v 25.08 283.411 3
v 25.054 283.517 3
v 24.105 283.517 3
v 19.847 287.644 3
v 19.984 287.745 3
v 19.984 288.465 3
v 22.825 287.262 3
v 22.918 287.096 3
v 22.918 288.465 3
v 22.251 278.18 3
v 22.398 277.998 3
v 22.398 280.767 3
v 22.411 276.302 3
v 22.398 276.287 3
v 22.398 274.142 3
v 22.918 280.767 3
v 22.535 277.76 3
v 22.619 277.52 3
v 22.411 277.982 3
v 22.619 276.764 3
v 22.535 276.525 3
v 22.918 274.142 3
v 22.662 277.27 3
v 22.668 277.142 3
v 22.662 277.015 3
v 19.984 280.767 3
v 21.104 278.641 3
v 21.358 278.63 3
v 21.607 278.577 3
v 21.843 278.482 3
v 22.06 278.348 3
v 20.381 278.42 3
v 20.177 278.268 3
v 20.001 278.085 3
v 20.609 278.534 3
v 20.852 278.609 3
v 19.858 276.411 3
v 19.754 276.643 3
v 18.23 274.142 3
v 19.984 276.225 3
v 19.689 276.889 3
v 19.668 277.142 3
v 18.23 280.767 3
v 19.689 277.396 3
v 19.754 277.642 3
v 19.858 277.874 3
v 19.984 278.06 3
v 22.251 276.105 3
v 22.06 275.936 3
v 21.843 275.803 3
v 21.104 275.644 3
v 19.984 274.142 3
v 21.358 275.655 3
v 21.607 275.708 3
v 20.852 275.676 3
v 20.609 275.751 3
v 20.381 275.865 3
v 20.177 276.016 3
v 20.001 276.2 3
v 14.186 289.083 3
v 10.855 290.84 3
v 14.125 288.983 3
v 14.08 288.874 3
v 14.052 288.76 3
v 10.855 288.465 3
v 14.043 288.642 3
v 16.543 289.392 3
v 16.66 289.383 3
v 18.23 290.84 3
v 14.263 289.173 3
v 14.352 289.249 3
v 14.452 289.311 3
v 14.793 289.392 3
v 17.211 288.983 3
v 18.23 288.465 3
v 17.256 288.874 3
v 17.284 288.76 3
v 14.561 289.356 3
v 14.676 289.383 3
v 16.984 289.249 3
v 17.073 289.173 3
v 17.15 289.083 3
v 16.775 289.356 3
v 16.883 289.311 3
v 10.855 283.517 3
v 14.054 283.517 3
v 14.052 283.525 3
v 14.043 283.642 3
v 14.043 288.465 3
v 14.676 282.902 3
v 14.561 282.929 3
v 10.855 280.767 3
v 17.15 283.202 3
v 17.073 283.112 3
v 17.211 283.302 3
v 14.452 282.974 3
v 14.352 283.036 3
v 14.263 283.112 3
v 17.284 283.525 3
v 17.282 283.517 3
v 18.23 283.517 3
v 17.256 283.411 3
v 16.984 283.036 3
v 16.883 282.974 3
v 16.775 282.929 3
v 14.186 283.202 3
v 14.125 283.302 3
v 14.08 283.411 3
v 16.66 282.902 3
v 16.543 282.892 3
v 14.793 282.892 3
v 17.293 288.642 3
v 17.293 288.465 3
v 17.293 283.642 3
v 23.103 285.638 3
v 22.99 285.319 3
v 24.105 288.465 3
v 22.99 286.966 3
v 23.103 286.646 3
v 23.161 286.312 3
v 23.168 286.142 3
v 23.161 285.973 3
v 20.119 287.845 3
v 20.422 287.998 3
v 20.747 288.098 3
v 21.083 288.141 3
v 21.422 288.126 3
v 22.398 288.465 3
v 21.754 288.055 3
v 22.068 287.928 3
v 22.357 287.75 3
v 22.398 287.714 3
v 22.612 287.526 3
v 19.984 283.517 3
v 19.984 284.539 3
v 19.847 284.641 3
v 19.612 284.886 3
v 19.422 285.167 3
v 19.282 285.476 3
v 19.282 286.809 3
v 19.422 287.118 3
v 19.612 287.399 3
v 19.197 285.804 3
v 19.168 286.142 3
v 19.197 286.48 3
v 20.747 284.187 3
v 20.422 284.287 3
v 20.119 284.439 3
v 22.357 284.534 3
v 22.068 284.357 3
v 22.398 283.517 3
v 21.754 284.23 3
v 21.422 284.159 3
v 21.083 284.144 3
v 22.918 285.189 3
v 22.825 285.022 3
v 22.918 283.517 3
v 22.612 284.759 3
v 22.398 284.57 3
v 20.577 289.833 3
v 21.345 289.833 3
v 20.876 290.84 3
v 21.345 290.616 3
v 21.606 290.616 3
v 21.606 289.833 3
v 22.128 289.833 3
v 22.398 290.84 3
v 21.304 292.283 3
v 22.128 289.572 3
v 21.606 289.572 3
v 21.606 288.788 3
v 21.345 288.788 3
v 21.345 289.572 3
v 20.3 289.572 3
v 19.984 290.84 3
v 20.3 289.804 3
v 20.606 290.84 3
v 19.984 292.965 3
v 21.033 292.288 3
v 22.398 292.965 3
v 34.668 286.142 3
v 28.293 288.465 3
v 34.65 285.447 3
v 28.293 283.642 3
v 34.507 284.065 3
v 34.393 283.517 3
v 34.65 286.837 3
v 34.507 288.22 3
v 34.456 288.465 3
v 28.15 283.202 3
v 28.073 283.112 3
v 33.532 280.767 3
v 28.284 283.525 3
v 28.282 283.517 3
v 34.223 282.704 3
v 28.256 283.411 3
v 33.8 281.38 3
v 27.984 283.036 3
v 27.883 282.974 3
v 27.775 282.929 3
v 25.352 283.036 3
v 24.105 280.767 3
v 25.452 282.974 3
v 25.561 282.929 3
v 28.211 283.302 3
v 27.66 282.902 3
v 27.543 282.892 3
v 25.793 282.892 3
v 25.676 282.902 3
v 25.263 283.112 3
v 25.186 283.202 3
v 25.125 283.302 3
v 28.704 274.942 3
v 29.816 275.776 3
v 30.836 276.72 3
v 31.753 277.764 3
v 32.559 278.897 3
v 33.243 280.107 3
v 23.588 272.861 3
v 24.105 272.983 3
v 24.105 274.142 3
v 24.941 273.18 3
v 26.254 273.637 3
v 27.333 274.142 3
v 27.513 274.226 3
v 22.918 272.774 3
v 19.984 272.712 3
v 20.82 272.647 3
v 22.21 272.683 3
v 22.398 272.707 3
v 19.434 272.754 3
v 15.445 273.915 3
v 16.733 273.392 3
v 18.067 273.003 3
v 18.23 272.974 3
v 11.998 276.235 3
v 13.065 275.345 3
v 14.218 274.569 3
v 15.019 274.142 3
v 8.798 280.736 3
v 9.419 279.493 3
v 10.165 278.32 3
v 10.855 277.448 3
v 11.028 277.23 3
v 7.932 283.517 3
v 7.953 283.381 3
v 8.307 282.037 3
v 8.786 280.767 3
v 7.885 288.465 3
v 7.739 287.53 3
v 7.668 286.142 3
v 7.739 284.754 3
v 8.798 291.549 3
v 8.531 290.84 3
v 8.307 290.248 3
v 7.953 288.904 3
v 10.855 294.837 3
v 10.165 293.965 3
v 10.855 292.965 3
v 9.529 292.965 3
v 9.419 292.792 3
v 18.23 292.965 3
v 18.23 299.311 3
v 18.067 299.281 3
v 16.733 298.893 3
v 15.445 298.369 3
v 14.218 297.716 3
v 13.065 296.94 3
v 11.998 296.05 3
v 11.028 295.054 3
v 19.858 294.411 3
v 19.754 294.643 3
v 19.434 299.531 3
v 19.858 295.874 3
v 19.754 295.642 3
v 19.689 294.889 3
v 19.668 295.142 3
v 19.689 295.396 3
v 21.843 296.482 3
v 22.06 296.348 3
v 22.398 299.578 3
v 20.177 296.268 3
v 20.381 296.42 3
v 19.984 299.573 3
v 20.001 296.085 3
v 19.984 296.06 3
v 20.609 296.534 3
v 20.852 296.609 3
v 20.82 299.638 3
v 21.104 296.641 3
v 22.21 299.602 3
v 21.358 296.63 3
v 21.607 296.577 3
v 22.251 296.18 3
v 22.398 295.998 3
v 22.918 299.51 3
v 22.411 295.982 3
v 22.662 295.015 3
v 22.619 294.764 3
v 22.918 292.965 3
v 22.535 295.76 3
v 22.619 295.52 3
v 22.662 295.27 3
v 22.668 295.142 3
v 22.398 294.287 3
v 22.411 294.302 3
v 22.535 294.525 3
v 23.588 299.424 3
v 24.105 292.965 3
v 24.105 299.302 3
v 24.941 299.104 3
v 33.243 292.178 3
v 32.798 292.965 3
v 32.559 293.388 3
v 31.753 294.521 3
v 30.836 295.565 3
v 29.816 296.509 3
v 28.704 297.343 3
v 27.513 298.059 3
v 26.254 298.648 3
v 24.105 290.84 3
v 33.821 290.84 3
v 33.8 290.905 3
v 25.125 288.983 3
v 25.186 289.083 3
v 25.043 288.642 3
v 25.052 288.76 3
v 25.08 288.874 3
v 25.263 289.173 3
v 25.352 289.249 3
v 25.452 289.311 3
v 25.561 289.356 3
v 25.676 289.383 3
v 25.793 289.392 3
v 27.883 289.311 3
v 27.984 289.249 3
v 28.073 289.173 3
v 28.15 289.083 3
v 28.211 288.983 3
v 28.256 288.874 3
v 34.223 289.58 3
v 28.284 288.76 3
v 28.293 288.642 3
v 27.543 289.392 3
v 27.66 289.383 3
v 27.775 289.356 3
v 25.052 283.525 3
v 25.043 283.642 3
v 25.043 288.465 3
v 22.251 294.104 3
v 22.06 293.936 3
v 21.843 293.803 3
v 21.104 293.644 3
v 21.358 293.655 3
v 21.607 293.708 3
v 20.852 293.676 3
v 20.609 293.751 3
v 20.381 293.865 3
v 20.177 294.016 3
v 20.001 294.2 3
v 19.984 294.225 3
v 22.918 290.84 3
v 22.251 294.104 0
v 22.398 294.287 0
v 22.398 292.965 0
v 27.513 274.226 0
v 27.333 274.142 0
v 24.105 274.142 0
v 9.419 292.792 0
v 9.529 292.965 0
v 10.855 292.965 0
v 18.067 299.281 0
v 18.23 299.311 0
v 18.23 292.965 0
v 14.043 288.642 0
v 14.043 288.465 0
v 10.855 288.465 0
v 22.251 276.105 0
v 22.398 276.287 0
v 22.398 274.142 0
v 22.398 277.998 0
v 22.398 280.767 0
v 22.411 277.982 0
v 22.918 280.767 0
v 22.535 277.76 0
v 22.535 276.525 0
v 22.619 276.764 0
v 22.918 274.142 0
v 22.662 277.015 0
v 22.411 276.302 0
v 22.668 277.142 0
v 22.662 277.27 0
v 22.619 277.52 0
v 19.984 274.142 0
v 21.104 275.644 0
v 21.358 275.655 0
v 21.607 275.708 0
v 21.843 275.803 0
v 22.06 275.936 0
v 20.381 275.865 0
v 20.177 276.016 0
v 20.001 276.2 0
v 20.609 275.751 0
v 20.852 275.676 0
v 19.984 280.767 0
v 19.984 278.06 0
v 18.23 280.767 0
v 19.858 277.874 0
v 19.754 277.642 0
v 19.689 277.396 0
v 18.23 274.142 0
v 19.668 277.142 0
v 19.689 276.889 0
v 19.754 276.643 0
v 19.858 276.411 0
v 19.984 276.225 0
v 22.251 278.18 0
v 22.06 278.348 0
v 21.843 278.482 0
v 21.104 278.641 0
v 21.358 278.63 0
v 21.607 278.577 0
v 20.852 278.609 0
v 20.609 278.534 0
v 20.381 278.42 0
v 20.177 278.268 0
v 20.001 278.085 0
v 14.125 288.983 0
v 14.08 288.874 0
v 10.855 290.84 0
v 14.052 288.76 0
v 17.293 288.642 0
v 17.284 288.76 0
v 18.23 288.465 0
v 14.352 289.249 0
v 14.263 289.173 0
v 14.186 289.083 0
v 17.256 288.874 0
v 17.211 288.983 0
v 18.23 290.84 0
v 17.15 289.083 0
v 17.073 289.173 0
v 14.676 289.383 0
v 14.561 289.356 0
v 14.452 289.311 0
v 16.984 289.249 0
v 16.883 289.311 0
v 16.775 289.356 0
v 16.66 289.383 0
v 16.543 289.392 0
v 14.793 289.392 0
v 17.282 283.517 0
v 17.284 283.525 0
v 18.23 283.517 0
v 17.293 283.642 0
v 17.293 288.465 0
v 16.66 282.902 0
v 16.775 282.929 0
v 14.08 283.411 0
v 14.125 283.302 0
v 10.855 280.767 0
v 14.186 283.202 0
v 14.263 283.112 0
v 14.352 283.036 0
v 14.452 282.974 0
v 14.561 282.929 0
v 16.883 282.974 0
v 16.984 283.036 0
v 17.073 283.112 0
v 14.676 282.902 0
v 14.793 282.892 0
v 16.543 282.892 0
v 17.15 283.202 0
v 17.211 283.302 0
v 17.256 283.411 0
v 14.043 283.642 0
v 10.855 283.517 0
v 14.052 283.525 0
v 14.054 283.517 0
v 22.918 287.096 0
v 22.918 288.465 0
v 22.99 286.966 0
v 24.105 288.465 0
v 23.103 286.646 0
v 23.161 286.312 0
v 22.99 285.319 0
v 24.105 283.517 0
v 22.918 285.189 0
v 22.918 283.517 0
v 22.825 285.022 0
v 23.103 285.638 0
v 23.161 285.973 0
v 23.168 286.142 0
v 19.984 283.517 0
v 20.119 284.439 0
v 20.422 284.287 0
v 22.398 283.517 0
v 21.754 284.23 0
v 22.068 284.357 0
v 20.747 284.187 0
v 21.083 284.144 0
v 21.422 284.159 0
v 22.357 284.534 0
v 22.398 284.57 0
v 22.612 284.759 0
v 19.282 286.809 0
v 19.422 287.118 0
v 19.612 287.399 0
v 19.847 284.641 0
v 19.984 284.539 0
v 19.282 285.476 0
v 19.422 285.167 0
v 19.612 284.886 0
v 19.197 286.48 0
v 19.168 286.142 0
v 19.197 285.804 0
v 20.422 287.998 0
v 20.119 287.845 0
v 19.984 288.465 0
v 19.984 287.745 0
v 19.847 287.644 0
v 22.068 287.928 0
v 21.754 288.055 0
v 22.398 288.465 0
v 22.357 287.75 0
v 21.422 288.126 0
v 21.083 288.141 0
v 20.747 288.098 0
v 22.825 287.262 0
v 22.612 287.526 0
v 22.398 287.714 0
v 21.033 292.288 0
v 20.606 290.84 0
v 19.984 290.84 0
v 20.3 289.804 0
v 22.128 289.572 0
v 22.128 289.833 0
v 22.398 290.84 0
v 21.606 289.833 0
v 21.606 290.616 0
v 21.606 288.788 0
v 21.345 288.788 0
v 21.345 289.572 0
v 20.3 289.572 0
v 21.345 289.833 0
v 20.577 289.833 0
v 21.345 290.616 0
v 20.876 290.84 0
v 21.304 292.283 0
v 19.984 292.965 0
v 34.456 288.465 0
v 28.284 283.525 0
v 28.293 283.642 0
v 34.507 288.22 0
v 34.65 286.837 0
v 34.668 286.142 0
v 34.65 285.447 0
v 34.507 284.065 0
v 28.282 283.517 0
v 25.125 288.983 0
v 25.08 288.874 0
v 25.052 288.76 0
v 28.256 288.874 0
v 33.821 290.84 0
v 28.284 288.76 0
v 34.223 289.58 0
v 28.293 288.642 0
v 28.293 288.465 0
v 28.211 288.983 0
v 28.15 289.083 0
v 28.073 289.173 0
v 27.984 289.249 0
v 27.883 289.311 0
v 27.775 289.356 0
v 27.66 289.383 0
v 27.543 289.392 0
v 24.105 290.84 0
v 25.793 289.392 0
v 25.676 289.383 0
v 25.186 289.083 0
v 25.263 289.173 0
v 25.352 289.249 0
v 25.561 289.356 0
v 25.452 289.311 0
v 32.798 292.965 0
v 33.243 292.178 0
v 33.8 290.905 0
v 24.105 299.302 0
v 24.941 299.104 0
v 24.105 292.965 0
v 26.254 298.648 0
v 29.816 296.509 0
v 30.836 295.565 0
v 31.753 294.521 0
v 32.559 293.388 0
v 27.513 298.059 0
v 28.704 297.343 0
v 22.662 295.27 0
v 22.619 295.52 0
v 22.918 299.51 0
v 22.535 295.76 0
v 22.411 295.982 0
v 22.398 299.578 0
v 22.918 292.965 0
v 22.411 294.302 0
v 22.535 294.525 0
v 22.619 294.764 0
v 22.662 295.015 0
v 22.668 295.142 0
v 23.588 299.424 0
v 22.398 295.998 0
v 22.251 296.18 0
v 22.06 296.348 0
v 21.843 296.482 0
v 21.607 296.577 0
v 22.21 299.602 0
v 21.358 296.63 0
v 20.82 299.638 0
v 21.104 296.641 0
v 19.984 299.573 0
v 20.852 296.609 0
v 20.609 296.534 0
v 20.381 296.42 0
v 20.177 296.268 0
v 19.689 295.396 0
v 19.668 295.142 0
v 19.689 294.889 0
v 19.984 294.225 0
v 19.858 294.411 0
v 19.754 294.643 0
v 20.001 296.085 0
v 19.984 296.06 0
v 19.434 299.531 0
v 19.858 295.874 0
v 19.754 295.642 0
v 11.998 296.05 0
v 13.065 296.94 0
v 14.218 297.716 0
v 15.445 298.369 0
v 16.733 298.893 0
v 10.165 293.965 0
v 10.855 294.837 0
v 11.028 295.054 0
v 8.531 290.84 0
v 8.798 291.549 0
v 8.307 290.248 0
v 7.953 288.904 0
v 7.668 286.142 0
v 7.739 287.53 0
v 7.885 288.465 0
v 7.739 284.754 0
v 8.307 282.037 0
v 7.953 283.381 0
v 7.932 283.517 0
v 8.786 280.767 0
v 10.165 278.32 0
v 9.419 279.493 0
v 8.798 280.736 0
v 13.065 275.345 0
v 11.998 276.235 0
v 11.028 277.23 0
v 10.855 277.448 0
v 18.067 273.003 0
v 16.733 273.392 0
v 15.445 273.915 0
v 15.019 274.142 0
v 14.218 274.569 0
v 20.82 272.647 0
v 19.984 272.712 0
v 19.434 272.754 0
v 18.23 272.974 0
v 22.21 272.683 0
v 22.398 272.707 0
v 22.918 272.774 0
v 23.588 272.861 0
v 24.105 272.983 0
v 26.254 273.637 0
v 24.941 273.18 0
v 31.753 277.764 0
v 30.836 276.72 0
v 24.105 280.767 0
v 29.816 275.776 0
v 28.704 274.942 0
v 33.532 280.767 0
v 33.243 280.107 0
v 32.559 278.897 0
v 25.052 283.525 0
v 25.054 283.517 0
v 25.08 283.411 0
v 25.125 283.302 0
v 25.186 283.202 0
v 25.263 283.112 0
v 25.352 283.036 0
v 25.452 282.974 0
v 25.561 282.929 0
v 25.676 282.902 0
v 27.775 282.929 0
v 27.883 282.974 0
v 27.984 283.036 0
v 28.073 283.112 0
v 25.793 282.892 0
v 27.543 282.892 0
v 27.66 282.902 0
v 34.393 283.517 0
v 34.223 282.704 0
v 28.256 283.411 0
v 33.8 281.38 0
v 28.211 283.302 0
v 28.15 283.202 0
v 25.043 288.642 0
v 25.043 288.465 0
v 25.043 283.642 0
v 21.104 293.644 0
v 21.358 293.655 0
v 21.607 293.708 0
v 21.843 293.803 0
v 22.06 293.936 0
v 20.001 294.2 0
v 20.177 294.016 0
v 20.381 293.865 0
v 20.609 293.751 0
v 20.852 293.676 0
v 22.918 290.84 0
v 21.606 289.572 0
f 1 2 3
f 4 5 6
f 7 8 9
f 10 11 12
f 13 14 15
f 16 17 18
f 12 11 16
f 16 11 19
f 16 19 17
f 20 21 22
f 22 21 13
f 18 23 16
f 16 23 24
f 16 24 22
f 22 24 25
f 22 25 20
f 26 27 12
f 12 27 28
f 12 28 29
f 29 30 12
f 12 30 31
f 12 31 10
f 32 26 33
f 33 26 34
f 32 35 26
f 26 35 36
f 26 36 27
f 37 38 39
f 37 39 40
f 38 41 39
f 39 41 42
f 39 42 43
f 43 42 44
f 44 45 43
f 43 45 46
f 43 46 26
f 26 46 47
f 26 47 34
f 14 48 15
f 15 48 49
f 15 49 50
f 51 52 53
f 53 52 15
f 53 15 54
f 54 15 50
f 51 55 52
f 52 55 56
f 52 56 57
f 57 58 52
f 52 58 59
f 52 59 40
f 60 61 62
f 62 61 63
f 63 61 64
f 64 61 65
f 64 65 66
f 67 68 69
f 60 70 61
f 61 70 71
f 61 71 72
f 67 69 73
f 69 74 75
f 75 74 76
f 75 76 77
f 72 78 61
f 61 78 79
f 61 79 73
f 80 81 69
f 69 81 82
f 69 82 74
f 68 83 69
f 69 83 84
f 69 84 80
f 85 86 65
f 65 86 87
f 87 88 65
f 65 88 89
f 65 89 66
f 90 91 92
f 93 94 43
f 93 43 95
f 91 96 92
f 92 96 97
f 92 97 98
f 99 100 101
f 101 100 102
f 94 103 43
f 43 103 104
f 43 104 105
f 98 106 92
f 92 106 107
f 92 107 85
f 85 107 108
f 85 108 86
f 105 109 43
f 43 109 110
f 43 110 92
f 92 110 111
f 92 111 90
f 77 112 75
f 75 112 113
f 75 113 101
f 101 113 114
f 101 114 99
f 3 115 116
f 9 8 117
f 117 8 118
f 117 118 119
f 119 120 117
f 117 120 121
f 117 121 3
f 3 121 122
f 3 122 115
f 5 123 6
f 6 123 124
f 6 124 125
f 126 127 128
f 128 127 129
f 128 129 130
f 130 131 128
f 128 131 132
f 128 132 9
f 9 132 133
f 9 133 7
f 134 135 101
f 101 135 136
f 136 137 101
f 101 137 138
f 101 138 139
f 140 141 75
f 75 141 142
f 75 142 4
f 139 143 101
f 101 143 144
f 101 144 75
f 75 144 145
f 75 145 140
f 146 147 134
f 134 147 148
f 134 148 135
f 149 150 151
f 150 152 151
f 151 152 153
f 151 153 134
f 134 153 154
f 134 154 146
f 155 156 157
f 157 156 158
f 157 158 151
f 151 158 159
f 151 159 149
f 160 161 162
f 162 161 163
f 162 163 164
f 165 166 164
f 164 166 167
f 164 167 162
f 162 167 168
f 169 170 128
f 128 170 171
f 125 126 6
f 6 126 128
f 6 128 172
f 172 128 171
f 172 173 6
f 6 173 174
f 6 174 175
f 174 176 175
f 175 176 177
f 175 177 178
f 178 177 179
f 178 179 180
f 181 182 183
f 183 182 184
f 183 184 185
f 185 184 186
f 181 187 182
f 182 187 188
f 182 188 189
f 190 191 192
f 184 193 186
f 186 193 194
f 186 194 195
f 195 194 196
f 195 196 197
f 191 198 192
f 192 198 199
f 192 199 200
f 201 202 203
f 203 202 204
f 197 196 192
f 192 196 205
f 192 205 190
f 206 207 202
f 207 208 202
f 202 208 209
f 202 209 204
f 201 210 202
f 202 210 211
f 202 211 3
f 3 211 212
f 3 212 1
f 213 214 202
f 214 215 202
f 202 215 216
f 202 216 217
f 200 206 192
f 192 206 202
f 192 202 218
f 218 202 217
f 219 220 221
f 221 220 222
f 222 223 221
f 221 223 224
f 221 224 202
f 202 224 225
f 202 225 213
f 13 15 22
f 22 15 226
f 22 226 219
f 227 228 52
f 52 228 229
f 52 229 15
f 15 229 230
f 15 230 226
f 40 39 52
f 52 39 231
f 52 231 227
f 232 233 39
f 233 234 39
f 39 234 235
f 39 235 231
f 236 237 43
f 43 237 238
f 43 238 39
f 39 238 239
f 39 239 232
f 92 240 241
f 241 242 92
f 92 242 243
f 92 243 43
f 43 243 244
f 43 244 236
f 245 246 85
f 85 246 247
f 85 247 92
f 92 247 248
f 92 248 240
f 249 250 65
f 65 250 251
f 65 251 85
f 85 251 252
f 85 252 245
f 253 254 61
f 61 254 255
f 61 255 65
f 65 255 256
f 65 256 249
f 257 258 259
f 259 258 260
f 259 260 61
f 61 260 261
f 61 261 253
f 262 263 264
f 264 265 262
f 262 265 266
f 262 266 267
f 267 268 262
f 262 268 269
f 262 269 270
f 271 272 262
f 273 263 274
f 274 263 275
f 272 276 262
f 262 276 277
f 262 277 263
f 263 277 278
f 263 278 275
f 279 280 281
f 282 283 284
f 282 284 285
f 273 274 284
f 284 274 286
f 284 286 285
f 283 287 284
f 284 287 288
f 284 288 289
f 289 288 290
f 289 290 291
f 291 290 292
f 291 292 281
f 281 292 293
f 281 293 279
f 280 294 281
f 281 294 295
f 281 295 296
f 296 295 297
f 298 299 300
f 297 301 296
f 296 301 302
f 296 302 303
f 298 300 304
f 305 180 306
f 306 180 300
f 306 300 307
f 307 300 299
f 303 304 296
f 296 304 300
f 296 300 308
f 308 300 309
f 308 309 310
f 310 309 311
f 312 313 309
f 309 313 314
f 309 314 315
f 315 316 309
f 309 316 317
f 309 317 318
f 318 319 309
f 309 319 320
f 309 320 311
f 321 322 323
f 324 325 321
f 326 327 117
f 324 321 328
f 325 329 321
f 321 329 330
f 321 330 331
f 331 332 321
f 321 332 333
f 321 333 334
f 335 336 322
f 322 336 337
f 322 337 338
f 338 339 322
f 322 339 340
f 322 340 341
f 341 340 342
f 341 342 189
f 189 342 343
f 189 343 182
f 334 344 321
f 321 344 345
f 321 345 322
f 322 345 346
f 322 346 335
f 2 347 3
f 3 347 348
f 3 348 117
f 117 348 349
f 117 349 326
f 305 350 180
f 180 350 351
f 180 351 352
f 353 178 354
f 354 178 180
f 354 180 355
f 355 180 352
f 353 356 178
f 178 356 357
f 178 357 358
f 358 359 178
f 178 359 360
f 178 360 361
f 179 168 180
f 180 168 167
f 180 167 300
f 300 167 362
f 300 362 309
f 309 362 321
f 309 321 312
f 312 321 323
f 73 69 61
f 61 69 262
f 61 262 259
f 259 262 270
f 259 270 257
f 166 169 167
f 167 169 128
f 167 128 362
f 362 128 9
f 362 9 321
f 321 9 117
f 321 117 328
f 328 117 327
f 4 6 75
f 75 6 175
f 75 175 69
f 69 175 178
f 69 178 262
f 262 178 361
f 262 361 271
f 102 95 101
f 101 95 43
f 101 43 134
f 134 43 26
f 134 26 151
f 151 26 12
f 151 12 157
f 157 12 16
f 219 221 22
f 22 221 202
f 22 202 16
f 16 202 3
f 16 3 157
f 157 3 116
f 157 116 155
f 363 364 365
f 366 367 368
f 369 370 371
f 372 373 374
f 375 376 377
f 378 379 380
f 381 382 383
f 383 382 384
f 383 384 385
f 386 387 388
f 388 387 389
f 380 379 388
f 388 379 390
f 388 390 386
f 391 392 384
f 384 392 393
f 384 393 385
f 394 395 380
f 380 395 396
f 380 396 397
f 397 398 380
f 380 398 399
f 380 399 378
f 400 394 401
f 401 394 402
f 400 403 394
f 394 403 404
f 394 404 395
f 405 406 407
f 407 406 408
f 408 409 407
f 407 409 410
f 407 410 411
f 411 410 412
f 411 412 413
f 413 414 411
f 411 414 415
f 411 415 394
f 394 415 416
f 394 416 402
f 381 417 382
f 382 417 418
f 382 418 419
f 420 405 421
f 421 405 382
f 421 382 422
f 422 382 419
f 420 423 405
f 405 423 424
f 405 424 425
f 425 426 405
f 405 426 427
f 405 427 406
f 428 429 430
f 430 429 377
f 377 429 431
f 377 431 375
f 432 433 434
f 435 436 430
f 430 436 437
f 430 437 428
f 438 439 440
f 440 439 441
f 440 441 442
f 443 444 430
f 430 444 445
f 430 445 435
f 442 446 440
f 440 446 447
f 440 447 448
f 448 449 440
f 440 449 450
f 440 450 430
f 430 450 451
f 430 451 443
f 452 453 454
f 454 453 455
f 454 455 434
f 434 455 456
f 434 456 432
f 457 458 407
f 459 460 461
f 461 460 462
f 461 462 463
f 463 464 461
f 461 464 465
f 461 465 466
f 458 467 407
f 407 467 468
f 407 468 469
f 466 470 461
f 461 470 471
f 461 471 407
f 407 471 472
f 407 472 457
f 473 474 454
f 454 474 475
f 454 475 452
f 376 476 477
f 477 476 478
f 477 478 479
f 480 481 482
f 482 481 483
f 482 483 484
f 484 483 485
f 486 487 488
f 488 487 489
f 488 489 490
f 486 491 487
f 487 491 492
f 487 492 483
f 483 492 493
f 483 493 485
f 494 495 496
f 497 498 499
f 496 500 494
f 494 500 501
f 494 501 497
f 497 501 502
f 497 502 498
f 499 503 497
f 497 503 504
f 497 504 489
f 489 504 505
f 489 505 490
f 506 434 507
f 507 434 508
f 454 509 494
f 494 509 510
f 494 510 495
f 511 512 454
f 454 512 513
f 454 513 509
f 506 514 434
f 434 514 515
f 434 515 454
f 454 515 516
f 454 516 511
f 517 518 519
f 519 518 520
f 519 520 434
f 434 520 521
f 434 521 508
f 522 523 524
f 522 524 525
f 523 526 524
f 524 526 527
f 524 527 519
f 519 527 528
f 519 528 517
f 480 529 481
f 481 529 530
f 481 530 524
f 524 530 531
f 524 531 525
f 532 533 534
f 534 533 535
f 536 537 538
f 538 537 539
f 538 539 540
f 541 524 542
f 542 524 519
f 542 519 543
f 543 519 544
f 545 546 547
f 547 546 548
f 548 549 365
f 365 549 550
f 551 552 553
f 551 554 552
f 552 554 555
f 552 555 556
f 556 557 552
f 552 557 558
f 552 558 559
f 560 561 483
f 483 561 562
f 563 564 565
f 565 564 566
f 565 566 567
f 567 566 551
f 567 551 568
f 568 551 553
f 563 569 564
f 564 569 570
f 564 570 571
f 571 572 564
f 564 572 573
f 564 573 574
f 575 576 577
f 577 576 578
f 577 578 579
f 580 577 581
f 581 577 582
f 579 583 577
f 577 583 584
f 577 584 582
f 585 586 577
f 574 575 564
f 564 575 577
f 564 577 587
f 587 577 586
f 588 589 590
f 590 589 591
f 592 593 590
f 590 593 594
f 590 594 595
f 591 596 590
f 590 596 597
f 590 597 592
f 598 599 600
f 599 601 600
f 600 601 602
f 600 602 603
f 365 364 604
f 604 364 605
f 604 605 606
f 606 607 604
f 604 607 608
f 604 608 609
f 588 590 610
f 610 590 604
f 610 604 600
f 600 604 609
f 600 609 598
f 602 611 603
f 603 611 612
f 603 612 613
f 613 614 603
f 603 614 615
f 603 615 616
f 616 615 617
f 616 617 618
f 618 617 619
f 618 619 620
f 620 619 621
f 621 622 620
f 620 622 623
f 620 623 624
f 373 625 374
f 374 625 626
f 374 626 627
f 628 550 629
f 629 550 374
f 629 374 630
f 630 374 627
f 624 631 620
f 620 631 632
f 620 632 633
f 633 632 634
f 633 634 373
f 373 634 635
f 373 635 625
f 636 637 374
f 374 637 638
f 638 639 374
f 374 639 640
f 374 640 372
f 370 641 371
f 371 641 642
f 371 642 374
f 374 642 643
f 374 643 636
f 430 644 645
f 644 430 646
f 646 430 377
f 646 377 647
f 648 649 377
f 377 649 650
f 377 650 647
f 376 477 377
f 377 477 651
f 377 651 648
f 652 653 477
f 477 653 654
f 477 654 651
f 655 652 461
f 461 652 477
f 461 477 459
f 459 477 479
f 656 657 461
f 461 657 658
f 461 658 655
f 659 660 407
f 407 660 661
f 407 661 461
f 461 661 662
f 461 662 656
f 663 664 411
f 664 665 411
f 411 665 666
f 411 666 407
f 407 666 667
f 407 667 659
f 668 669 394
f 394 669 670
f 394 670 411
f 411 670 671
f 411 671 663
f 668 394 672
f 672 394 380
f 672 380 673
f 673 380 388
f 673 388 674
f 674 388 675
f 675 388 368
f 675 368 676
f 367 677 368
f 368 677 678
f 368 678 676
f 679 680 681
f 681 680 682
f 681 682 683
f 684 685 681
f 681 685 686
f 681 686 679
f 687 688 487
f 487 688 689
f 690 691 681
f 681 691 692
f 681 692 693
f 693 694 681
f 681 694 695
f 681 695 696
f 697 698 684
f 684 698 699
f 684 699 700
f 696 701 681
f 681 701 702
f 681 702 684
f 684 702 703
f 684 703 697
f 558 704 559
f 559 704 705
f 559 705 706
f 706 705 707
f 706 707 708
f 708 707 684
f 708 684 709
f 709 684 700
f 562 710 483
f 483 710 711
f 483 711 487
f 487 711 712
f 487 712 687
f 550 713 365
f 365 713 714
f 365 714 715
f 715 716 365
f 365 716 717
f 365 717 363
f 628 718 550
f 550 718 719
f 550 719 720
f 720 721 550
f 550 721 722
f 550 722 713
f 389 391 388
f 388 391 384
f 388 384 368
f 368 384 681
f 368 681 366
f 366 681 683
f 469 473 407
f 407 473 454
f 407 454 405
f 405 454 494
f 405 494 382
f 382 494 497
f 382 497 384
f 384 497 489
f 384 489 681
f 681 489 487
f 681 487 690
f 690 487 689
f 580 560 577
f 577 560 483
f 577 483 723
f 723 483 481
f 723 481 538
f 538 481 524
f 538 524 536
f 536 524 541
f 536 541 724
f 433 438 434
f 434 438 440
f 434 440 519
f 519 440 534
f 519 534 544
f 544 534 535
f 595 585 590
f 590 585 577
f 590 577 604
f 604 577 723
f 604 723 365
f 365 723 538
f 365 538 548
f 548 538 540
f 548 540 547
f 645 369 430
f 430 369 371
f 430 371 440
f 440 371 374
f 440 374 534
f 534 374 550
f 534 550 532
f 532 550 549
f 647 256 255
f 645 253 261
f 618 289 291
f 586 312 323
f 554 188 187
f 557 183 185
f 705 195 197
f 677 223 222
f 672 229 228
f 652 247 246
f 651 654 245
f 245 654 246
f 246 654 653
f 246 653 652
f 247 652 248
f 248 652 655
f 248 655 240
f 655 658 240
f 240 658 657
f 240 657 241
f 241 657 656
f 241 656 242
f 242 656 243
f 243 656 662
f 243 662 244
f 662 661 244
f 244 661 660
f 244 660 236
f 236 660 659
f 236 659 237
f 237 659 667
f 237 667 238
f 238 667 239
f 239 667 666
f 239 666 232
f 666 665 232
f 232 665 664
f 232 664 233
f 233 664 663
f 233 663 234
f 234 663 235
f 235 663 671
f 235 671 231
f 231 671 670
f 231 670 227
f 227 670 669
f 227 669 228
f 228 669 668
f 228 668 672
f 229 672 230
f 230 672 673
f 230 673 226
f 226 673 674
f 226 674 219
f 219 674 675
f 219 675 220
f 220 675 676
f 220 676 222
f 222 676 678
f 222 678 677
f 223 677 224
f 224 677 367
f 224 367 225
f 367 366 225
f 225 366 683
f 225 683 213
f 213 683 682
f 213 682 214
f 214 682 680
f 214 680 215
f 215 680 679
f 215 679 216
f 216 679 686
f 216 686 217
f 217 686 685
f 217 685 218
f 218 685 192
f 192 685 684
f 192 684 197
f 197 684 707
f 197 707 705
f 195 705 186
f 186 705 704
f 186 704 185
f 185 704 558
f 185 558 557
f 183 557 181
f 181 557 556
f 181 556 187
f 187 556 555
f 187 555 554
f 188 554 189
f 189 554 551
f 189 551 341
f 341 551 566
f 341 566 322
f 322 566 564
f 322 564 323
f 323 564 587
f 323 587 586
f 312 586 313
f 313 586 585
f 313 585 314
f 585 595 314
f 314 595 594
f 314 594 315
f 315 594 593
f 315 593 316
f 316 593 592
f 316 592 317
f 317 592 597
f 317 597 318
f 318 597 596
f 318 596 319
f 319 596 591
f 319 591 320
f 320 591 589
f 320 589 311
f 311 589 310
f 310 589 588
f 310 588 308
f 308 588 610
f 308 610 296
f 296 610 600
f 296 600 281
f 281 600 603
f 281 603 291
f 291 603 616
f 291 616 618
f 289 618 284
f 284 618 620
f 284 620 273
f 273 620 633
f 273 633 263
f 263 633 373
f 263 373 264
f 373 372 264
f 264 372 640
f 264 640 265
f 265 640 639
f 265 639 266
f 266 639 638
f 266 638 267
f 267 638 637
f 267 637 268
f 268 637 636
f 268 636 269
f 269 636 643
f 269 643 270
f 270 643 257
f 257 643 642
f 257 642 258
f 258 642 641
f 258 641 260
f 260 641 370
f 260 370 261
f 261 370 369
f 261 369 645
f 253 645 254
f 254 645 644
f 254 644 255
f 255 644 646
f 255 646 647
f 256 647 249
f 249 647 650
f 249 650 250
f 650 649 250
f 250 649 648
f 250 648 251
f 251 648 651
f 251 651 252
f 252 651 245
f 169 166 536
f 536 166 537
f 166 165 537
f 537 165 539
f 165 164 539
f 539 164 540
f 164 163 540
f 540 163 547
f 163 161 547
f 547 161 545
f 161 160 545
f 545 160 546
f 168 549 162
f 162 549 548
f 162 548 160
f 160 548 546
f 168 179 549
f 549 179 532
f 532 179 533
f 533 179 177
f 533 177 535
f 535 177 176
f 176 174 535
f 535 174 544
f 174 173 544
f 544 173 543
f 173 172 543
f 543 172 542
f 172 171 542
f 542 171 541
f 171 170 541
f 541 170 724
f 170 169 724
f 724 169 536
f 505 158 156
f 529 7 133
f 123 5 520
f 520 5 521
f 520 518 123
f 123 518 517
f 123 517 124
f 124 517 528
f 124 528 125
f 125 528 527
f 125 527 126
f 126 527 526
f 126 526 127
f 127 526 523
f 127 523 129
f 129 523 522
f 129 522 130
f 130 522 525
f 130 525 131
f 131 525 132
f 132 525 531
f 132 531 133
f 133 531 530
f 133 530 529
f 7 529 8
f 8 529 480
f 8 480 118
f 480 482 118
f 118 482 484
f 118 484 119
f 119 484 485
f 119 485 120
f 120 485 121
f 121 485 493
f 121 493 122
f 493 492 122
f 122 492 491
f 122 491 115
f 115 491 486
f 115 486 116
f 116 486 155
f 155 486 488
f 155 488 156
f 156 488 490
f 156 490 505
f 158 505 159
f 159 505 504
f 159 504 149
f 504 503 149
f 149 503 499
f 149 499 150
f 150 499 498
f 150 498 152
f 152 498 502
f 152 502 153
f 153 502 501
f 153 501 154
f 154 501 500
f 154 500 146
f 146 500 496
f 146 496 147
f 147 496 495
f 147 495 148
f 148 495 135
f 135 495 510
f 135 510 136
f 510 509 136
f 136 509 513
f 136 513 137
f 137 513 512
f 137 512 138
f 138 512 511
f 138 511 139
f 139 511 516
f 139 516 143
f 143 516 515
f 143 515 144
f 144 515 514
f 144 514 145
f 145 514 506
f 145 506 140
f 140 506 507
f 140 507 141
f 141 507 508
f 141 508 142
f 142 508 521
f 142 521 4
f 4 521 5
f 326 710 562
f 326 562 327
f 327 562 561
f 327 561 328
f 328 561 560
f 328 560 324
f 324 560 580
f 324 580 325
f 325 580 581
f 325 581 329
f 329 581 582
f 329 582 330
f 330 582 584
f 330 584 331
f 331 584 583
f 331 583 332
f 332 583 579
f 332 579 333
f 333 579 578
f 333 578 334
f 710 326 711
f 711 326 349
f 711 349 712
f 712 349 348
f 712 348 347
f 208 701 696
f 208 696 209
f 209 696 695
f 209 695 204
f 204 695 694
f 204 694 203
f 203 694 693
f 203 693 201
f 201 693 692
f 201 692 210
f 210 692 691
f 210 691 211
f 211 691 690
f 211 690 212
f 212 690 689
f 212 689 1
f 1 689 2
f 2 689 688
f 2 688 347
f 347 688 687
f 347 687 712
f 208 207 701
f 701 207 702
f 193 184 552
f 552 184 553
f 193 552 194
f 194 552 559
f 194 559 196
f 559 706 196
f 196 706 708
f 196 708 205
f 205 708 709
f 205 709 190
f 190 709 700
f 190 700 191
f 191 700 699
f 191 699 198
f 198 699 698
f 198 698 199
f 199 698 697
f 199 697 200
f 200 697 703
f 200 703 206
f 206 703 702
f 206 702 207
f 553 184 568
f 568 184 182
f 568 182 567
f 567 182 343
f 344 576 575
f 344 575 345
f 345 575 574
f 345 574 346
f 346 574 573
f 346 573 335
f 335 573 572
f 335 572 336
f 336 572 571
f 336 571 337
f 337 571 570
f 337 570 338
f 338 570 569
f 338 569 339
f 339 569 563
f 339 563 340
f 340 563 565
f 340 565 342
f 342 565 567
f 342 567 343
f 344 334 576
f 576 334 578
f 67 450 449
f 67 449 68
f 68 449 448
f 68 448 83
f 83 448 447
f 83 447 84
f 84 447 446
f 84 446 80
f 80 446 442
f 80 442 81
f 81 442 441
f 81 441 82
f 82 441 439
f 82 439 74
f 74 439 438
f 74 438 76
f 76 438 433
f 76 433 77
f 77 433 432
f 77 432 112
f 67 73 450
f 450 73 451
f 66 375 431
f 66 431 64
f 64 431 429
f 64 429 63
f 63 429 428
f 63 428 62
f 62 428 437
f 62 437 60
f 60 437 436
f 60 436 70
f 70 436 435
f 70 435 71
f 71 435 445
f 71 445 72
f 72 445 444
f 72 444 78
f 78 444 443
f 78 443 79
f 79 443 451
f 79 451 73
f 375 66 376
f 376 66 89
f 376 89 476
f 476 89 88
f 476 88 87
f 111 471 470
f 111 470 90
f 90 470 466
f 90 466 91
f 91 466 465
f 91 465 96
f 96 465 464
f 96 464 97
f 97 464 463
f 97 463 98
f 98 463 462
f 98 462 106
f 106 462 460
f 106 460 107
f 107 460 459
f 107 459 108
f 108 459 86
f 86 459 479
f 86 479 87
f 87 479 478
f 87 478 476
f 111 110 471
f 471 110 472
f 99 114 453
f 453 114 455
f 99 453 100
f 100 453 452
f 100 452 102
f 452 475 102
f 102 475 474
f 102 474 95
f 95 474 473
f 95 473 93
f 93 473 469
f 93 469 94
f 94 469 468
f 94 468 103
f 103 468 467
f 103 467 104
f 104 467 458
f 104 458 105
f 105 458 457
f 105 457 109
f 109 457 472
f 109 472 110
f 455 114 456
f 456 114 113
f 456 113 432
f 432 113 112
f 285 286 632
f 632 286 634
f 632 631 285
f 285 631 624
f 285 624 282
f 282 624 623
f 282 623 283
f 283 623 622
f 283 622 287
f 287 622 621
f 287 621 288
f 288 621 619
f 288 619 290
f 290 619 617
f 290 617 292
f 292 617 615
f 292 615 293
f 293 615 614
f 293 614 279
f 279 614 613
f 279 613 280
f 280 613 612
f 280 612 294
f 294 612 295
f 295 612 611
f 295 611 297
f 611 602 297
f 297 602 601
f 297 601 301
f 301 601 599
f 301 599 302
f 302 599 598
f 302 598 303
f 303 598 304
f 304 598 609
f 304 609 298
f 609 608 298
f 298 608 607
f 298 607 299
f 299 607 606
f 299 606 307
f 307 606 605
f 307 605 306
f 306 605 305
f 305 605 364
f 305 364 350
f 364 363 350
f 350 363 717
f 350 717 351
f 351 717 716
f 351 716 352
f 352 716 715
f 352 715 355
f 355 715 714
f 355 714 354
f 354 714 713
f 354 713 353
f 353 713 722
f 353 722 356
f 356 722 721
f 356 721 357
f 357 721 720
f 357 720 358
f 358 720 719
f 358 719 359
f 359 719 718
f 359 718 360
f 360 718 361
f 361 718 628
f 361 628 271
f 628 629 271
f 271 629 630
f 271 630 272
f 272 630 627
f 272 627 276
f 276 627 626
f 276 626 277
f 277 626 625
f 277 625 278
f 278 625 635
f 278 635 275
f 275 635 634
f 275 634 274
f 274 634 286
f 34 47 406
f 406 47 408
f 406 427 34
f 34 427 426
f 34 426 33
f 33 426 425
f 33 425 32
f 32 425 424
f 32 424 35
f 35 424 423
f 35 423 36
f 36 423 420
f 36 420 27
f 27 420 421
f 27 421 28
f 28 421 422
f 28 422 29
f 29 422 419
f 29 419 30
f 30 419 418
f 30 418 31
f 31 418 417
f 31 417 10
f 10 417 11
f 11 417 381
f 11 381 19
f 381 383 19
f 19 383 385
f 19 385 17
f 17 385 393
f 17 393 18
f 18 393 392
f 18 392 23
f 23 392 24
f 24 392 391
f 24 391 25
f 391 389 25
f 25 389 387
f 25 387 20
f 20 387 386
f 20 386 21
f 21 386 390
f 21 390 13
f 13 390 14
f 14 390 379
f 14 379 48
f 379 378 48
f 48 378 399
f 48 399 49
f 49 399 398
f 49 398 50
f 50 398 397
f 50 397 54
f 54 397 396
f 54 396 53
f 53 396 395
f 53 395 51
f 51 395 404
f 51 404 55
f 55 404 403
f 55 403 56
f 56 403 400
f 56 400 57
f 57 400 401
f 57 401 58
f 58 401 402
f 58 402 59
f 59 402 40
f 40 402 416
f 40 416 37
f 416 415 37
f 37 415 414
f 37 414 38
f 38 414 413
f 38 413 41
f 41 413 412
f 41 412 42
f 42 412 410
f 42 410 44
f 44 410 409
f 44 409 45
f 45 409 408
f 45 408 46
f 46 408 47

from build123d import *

# Parameters (mm, degrees)
MODEL_R                 = 13.5
MODEL_R_2               = 2
MODEL_R_3               = 1.5
SALIENTE_EXTRUIR1_DEPTH = 3


with BuildPart() as part:
    # Model → Saliente-Extruir1 (new body)
    with BuildSketch(Plane.XY):
        with Locations((21.167864369, 286.142389673)):
            Circle(MODEL_R)
        with Locations((21.167864369, 286.142389673)):
            Circle(MODEL_R_2, mode=Mode.SUBTRACT)
        with Locations((21.167864369, 295.142389673)):
            Circle(MODEL_R_3, mode=Mode.SUBTRACT)
        with Locations((21.167864369, 277.142389673)):
            Circle(MODEL_R_3, mode=Mode.SUBTRACT)
        with BuildLine():
            Line((27.542864369, 289.392389673), (25.792864369, 289.392389673))
            ThreePointArc((25.792864369, 289.392389673), (25.262534283, 289.172719759), (25.042864369, 288.642389673))
            Line((25.042864369, 288.642389673), (25.042864369, 283.642389673))
            ThreePointArc((25.042864369, 283.642389673), (25.262534283, 283.112059587), (25.792864369, 282.892389673))
            Line((25.792864369, 282.892389673), (27.542864369, 282.892389673))
            ThreePointArc((27.542864369, 282.892389673), (28.073194454, 283.112059587), (28.292864369, 283.642389673))
            Line((28.292864369, 283.642389673), (28.292864369, 288.642389673))
            ThreePointArc((28.292864369, 288.642389673), (28.073194454, 289.172719759), (27.542864369, 289.392389673))
        make_face(mode=Mode.SUBTRACT)
        with BuildLine():
            Line((14.792864369, 289.392389673), (16.542864369, 289.392389673))
            ThreePointArc((16.542864369, 289.392389673), (17.073194454, 289.172719759), (17.292864369, 288.642389673))
            Line((17.292864369, 288.642389673), (17.292864369, 283.642389673))
            ThreePointArc((17.292864369, 283.642389673), (17.073194454, 283.112059587), (16.542864369, 282.892389673))
            Line((16.542864369, 282.892389673), (14.792864369, 282.892389673))
            ThreePointArc((14.792864369, 282.892389673), (14.262534283, 283.112059587), (14.042864369, 283.642389673))
            Line((14.042864369, 283.642389673), (14.042864369, 288.642389673))
            ThreePointArc((14.042864369, 288.642389673), (14.262534283, 289.172719759), (14.792864369, 289.392389673))
        make_face(mode=Mode.SUBTRACT)
        Polygon((22.128307957, 289.571683654), (21.605919898, 289.571683654), (21.605919898, 288.788101564), (21.344725868, 288.788101564), (21.344725868, 289.571683654), (20.299949748, 289.571683654), (20.299949748, 289.804309587), (21.032925495, 292.288101564), (21.303914301, 292.283204176), (20.577468405, 289.832877684), (21.344725868, 289.832877684), (21.344725868, 290.616459773), (21.605919898, 290.616459773), (21.605919898, 289.832877684), (22.128307957, 289.832877684), align=None, mode=Mode.SUBTRACT)
    extrude(amount=SALIENTE_EXTRUIR1_DEPTH)


solid = part.part
